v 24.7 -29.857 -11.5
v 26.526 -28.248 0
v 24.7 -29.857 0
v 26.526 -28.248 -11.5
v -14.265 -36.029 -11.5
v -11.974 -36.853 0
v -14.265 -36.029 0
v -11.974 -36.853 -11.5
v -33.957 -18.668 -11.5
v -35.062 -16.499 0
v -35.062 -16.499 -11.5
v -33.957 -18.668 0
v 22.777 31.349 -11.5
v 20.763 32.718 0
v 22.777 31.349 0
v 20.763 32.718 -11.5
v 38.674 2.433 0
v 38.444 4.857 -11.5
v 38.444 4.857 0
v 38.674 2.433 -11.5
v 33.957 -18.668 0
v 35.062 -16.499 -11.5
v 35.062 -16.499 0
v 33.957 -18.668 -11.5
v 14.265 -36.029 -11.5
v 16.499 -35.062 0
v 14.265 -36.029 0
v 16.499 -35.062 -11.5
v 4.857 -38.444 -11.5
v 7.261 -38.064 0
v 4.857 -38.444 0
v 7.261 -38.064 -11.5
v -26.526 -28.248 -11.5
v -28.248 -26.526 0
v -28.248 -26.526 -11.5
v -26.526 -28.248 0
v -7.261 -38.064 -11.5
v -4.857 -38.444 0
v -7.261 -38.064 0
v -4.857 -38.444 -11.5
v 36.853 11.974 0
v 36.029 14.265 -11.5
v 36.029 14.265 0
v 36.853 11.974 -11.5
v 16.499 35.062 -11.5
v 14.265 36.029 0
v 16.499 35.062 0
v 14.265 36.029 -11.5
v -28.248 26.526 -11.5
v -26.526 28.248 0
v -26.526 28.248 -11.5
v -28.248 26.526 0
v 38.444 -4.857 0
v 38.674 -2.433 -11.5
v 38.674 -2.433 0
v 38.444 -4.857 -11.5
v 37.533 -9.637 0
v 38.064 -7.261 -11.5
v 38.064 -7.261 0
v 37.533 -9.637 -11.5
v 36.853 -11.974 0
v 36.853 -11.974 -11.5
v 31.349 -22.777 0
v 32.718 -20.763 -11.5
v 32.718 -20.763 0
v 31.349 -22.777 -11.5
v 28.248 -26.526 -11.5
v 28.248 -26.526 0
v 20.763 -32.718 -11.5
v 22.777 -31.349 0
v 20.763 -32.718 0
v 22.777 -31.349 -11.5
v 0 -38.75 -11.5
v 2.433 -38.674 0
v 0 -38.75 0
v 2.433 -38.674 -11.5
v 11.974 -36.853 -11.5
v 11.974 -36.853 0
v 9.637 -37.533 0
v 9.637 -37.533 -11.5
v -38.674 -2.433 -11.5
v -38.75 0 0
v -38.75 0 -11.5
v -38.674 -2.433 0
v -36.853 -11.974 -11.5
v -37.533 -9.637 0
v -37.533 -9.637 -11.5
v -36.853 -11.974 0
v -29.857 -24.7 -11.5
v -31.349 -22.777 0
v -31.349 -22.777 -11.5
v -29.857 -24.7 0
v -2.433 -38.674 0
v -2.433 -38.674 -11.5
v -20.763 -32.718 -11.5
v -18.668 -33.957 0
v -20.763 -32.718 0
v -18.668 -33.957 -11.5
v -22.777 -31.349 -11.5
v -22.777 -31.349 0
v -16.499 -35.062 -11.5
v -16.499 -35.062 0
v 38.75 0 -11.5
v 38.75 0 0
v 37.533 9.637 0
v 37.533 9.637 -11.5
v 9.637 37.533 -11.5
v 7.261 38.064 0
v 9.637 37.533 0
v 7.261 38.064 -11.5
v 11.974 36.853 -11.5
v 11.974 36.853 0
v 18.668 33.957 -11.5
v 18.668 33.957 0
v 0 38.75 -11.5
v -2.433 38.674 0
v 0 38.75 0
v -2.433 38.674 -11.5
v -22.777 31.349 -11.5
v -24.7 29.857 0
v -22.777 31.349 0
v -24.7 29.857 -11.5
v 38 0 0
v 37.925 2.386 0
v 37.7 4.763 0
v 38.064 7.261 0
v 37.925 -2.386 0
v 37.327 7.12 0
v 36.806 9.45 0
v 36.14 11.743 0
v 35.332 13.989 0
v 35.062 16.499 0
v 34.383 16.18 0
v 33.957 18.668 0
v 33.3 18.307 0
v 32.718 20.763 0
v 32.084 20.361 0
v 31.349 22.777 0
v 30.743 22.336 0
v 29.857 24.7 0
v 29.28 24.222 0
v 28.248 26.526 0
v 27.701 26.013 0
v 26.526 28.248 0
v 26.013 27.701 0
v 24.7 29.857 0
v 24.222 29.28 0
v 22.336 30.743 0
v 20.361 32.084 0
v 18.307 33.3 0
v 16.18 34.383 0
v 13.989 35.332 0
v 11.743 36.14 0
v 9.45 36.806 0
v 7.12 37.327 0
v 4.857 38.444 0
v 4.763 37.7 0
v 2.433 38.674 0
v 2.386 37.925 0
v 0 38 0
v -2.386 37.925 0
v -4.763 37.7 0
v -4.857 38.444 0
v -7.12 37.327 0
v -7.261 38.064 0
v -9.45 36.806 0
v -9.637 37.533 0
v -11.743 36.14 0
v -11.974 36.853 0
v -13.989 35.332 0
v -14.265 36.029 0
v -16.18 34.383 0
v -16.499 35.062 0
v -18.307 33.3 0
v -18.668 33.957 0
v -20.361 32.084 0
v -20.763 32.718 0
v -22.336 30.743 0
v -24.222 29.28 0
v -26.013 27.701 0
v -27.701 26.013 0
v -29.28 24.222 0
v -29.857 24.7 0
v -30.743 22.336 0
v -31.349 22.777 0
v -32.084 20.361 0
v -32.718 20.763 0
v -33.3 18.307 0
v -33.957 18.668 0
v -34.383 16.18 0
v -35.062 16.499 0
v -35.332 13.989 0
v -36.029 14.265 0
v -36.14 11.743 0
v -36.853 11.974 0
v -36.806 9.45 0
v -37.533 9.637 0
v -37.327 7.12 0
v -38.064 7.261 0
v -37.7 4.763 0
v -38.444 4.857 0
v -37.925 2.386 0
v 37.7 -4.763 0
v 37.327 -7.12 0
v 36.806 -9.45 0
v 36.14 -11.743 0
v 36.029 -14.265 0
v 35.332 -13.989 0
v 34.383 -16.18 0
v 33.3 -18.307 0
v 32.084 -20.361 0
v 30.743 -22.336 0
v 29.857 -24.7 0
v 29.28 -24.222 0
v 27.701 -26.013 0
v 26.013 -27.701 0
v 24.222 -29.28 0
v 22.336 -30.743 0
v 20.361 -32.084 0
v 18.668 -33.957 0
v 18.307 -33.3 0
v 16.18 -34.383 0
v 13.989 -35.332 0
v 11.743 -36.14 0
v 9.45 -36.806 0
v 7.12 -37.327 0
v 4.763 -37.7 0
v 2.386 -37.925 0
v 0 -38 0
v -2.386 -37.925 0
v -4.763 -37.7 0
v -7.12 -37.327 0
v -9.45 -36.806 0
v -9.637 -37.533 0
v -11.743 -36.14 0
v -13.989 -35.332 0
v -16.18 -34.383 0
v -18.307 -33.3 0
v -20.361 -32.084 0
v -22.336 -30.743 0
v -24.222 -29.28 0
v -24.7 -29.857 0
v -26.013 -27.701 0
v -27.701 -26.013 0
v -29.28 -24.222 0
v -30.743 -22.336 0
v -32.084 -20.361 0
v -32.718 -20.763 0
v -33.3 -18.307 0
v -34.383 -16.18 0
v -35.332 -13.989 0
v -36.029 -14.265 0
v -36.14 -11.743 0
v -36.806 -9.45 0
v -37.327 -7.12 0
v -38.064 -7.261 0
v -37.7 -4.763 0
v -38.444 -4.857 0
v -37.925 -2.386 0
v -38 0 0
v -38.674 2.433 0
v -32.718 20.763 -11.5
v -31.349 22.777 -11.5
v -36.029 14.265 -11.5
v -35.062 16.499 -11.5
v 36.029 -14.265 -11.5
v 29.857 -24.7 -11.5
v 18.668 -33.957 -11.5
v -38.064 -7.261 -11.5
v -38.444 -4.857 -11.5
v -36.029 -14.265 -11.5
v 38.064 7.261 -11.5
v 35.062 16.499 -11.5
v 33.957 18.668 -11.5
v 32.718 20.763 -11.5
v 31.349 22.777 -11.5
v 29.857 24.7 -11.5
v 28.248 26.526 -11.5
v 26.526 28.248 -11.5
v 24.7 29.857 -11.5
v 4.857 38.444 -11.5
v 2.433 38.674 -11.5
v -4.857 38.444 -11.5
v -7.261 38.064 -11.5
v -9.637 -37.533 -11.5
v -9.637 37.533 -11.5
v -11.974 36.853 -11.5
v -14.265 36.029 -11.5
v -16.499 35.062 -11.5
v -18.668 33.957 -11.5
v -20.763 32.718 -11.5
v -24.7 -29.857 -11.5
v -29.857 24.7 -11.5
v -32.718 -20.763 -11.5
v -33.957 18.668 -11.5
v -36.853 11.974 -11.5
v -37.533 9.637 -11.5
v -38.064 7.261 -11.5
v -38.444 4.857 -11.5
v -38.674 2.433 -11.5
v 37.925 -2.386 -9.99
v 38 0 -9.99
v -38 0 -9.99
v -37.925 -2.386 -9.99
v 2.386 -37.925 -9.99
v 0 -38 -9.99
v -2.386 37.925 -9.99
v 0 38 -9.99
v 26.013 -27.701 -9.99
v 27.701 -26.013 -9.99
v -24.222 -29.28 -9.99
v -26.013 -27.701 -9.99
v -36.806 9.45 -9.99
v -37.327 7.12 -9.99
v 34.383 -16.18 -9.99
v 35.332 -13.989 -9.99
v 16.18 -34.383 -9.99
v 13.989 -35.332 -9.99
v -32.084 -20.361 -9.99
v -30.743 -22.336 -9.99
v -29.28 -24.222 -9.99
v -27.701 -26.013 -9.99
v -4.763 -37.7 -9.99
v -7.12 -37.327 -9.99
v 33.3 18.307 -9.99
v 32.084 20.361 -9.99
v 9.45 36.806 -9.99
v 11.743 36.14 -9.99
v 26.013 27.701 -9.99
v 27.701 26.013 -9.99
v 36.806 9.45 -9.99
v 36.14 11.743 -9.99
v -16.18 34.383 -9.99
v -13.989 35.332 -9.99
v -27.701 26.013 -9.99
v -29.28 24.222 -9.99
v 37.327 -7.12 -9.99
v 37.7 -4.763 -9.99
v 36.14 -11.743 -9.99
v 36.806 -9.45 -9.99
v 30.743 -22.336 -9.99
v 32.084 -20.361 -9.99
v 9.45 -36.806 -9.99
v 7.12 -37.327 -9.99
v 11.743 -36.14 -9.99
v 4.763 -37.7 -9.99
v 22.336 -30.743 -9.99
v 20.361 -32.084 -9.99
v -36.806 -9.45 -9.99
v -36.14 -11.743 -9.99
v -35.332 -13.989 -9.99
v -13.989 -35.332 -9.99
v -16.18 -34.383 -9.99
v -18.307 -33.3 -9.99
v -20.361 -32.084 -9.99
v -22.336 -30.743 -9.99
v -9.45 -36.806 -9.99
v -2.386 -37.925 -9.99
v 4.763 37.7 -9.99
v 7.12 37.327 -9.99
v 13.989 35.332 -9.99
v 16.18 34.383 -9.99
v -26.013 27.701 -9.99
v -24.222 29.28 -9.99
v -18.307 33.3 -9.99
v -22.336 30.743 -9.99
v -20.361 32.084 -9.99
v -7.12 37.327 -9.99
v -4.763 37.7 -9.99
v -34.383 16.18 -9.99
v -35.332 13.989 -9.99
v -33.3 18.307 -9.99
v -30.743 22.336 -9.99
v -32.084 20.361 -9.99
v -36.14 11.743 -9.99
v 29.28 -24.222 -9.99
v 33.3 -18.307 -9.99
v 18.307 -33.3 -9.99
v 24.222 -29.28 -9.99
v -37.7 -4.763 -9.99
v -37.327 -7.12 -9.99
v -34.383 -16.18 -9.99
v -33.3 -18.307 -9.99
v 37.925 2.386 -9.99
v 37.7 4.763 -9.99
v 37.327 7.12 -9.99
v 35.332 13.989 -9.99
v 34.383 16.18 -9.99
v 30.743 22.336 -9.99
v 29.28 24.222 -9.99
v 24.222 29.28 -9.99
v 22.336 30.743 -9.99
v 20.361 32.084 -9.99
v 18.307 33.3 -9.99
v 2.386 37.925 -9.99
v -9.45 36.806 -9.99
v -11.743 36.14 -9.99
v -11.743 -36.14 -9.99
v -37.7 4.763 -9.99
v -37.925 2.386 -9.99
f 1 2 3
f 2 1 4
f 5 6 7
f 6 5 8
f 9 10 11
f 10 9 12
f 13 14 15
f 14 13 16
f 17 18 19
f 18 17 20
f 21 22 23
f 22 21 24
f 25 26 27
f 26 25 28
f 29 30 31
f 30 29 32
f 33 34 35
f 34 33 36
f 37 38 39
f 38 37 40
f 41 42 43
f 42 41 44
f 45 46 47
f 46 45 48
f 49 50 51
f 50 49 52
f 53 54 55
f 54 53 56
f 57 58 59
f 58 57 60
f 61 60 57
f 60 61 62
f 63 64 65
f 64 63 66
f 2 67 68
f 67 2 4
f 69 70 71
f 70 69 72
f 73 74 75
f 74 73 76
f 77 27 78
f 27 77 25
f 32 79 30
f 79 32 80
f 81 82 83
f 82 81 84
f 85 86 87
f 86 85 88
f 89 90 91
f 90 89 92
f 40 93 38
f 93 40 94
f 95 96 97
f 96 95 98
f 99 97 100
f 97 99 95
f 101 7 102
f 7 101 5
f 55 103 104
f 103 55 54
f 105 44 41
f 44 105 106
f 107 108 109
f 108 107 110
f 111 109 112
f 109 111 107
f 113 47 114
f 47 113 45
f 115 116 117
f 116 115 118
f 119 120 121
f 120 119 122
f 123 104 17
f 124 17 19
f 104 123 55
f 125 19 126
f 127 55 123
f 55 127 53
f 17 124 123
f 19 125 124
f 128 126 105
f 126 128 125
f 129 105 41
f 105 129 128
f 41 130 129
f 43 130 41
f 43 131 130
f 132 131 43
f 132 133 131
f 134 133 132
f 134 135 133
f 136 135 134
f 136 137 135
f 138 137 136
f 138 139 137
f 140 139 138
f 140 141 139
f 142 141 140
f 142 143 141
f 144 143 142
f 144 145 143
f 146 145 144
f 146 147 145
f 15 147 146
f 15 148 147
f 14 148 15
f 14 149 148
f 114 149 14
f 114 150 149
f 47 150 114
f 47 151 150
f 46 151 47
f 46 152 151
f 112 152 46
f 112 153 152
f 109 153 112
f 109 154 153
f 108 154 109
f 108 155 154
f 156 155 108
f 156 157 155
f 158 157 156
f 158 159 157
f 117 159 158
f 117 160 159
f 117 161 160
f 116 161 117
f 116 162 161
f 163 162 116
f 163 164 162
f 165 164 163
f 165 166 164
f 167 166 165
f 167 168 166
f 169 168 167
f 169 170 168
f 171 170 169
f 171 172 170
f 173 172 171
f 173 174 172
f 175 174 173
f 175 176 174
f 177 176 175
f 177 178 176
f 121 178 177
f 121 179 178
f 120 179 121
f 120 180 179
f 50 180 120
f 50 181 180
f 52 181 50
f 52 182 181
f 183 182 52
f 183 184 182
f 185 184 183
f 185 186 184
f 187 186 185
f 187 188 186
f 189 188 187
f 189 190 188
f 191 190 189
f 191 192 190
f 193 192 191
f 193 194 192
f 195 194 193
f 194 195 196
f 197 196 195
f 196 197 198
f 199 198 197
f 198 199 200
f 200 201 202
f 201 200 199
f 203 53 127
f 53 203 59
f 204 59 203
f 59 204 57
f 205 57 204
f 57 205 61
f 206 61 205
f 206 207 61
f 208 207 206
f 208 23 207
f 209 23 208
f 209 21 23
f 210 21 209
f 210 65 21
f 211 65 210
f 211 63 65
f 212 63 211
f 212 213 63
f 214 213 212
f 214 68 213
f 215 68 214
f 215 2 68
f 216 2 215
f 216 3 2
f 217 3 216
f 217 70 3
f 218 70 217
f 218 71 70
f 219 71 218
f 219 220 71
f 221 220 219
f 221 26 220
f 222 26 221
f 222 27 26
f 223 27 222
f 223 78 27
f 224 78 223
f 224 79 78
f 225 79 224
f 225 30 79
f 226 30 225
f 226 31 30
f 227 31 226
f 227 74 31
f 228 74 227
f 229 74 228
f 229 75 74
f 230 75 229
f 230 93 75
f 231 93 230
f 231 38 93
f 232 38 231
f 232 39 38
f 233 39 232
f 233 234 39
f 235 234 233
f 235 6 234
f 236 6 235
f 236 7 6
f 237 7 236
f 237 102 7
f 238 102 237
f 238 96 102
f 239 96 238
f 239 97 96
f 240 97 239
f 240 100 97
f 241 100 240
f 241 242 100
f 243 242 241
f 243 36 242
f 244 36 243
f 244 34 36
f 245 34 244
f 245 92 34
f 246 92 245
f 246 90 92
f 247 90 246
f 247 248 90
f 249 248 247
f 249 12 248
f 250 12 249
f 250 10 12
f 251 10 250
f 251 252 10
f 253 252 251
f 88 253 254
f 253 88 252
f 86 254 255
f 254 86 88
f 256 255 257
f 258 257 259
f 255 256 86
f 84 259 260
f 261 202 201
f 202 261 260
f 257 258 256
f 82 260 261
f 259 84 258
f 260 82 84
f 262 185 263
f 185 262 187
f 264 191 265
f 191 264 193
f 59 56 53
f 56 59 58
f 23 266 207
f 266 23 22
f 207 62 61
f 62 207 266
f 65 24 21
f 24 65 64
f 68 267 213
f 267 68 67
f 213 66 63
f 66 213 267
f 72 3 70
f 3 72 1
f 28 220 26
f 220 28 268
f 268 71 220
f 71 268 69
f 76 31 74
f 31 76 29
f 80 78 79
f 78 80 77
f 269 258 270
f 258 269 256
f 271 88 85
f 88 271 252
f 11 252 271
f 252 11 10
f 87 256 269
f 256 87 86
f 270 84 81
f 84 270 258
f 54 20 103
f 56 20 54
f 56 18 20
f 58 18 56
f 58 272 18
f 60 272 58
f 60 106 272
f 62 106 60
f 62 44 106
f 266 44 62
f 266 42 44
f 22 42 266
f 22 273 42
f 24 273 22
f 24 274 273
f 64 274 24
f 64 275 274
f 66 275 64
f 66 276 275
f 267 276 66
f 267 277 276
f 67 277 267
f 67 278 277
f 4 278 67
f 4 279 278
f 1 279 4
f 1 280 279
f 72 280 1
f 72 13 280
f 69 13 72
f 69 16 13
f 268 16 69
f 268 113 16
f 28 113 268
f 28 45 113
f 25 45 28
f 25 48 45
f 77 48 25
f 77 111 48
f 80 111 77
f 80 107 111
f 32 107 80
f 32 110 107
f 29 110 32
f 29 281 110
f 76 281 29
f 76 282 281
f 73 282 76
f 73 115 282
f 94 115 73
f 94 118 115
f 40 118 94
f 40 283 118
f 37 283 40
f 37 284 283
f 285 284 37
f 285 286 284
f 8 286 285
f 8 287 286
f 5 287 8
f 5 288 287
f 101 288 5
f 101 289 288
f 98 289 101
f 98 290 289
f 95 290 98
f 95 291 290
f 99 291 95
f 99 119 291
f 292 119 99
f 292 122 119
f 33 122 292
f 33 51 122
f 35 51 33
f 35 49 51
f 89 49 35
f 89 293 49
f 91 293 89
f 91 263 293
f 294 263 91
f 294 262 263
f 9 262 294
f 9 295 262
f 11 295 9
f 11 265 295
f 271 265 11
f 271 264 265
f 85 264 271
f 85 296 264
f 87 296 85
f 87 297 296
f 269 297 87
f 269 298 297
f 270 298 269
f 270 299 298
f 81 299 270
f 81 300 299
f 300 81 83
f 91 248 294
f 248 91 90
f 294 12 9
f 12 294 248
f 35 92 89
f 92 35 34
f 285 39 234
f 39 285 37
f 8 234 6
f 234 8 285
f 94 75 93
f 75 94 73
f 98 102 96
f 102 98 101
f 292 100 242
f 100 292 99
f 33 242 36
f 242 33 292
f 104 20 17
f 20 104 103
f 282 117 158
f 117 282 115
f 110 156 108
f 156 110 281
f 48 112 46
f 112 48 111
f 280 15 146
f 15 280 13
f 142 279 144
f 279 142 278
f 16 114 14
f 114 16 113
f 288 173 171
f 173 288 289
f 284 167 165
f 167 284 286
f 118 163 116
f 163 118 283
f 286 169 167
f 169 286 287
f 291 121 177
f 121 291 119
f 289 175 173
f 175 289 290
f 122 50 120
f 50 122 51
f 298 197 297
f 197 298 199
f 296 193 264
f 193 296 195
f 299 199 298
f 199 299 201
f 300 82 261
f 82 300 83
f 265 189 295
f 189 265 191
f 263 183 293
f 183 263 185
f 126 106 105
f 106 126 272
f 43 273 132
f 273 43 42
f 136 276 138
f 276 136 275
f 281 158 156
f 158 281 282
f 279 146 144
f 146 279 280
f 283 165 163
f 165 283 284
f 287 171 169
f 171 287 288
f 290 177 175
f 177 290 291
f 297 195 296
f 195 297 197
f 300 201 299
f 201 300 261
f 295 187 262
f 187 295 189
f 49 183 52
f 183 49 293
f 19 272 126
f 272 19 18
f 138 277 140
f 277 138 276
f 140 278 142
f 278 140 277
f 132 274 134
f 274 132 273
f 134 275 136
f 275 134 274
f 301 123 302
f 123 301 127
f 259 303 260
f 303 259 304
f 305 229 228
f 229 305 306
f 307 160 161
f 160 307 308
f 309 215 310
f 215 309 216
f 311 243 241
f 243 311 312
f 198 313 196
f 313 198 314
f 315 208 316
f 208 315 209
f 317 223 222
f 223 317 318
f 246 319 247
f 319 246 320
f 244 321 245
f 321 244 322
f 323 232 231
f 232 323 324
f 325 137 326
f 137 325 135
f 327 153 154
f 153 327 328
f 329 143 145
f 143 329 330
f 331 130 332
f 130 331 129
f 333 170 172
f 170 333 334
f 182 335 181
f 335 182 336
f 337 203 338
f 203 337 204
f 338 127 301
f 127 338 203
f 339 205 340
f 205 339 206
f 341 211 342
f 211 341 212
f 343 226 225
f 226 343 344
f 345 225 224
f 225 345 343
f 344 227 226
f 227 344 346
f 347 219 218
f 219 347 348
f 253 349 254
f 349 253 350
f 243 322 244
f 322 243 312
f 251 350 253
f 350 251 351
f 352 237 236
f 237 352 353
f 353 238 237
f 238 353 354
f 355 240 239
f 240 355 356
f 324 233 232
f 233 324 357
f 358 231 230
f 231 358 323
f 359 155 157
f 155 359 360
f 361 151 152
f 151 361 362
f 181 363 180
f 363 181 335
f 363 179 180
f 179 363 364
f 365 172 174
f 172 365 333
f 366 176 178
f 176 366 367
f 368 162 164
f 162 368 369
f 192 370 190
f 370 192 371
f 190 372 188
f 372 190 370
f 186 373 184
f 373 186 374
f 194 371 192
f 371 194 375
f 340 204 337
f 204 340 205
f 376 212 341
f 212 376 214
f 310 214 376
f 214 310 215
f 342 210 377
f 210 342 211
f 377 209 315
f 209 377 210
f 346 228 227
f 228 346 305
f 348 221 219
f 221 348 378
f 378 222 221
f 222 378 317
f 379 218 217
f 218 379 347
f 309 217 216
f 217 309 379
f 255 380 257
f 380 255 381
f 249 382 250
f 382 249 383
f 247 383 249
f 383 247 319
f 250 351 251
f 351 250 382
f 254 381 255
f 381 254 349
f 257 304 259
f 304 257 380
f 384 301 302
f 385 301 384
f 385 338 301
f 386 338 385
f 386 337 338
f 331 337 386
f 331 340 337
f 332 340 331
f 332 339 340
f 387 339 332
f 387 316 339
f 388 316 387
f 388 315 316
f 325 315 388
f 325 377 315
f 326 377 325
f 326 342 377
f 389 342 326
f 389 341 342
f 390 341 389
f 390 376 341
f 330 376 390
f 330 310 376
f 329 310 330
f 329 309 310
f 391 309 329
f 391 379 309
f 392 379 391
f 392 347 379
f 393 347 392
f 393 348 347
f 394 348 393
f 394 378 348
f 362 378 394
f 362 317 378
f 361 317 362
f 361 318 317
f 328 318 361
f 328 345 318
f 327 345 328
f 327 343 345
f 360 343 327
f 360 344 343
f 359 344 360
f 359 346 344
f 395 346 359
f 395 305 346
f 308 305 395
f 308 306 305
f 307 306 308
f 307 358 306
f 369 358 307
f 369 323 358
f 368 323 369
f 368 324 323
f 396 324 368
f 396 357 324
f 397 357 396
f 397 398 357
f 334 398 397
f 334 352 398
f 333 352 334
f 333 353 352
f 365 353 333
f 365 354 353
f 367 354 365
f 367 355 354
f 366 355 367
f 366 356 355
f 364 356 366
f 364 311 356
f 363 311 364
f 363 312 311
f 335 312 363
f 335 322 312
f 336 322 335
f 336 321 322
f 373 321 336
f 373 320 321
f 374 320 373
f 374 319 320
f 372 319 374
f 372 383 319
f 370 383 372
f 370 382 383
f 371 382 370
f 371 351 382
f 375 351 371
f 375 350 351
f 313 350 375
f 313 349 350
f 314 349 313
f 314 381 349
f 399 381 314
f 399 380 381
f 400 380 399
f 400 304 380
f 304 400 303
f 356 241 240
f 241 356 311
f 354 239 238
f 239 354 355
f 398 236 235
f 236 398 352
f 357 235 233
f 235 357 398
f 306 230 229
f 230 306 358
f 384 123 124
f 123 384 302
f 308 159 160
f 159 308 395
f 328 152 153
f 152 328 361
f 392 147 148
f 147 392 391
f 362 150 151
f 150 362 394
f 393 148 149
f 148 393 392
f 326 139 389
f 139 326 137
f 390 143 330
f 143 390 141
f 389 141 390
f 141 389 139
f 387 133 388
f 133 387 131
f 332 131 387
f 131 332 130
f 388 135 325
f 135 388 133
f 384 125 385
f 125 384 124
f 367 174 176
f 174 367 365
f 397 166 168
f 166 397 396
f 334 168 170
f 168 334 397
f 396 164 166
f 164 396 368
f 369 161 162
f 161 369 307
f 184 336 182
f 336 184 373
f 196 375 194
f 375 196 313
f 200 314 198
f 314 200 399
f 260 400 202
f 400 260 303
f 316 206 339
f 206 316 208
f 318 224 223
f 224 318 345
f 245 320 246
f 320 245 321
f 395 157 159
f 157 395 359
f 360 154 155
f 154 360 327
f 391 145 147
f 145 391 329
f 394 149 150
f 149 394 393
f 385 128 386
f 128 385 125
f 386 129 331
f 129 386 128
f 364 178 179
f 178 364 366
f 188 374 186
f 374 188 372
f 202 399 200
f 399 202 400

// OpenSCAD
overallDia=75;
$fn=100;


rotate([180,0,0])
difference(){
    
cylinder(h=10+1.5,d1=overallDia+1+1.5,d2=overallDia+1+1.5);
    translate([0,0,-0.01])
cylinder(h=10,d1=overallDia+1,d2=overallDia+1);
}
